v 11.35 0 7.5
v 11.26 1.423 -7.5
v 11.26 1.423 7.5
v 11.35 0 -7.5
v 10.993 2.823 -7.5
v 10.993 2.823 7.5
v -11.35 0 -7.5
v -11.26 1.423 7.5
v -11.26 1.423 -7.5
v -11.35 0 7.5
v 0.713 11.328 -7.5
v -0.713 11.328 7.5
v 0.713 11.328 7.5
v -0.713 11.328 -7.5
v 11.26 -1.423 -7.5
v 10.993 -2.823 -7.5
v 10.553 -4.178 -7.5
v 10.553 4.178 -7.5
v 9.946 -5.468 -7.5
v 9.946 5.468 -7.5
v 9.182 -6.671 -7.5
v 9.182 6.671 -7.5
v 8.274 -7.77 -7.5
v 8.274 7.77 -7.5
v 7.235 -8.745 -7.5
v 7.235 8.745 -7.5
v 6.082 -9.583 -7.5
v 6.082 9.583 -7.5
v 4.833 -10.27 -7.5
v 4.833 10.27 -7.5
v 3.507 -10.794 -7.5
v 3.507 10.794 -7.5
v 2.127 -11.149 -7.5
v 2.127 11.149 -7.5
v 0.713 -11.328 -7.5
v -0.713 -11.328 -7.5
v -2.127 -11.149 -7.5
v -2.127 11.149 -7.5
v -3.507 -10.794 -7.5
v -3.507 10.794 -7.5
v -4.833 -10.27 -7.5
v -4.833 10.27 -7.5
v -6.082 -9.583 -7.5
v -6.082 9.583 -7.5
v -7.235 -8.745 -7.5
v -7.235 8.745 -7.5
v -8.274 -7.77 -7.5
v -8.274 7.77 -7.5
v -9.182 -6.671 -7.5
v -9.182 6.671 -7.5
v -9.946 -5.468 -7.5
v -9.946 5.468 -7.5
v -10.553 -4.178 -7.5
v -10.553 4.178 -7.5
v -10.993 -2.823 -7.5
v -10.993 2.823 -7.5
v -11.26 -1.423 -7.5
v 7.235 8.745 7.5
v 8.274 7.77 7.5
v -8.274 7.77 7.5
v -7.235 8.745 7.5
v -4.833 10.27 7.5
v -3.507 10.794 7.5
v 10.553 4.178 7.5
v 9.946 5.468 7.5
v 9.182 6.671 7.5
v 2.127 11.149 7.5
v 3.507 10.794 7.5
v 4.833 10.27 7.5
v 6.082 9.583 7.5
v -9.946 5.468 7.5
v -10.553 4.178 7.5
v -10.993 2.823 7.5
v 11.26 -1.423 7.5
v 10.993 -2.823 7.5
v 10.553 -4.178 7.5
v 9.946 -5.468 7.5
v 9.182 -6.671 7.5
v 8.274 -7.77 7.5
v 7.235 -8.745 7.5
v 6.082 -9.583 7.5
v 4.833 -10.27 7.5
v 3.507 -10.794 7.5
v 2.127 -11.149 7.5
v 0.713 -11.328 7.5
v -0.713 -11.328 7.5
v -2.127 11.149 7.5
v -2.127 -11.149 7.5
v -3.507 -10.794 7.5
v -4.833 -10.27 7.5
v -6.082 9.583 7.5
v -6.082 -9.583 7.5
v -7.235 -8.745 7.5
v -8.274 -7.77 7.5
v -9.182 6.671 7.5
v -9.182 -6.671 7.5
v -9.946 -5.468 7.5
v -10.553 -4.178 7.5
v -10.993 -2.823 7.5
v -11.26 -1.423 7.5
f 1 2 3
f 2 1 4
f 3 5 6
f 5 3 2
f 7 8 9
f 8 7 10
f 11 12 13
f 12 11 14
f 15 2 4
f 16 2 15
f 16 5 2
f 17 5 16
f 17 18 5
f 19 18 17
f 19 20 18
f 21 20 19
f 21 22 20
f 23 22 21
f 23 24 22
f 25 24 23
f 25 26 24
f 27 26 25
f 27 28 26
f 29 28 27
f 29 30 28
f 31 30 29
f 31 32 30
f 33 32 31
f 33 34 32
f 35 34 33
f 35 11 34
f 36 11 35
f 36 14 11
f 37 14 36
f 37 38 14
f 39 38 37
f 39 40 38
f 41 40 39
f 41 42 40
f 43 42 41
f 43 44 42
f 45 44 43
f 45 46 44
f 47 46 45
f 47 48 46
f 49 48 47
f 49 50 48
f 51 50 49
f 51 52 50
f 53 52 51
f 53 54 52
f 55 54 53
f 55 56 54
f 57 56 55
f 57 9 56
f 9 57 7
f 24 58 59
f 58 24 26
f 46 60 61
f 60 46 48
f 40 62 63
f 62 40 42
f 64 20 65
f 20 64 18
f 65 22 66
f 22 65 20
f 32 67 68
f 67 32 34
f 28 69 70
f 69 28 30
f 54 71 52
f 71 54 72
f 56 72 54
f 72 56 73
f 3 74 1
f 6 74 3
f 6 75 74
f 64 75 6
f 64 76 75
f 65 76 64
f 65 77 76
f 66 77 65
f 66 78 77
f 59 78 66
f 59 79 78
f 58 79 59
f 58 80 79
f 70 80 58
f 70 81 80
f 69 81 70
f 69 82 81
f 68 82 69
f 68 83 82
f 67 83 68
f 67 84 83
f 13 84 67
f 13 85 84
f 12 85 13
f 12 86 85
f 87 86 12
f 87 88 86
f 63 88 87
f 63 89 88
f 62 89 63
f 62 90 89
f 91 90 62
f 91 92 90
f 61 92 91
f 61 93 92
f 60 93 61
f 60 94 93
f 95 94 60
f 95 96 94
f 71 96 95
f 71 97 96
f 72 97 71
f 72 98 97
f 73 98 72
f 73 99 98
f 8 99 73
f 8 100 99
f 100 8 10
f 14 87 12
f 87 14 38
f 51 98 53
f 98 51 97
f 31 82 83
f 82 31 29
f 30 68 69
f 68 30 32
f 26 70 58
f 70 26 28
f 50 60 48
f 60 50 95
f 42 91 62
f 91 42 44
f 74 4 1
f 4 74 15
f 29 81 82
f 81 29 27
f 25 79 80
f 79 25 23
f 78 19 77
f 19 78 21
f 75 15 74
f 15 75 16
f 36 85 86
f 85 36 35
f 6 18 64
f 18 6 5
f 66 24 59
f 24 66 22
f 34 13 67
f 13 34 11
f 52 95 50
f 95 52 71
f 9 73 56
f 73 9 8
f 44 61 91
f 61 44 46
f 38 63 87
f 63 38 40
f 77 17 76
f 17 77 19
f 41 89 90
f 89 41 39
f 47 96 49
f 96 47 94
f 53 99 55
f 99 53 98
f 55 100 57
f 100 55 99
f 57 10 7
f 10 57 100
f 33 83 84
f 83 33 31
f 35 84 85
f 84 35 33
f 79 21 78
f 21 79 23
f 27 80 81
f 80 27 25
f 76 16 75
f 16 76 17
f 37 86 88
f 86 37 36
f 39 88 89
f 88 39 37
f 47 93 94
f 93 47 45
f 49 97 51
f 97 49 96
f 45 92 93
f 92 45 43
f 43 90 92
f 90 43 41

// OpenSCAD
$fn = 50;


difference() {
	union() {
		translate(v = [0, 0, -7.5000000000]) {
			cylinder(h = 15, r = 11.3500000000);
		}
	}
	union() {
		translate(v = [0, 0, -100.0000000000]) {
			cylinder(h = 200, r = 0);
		}
	}
}
